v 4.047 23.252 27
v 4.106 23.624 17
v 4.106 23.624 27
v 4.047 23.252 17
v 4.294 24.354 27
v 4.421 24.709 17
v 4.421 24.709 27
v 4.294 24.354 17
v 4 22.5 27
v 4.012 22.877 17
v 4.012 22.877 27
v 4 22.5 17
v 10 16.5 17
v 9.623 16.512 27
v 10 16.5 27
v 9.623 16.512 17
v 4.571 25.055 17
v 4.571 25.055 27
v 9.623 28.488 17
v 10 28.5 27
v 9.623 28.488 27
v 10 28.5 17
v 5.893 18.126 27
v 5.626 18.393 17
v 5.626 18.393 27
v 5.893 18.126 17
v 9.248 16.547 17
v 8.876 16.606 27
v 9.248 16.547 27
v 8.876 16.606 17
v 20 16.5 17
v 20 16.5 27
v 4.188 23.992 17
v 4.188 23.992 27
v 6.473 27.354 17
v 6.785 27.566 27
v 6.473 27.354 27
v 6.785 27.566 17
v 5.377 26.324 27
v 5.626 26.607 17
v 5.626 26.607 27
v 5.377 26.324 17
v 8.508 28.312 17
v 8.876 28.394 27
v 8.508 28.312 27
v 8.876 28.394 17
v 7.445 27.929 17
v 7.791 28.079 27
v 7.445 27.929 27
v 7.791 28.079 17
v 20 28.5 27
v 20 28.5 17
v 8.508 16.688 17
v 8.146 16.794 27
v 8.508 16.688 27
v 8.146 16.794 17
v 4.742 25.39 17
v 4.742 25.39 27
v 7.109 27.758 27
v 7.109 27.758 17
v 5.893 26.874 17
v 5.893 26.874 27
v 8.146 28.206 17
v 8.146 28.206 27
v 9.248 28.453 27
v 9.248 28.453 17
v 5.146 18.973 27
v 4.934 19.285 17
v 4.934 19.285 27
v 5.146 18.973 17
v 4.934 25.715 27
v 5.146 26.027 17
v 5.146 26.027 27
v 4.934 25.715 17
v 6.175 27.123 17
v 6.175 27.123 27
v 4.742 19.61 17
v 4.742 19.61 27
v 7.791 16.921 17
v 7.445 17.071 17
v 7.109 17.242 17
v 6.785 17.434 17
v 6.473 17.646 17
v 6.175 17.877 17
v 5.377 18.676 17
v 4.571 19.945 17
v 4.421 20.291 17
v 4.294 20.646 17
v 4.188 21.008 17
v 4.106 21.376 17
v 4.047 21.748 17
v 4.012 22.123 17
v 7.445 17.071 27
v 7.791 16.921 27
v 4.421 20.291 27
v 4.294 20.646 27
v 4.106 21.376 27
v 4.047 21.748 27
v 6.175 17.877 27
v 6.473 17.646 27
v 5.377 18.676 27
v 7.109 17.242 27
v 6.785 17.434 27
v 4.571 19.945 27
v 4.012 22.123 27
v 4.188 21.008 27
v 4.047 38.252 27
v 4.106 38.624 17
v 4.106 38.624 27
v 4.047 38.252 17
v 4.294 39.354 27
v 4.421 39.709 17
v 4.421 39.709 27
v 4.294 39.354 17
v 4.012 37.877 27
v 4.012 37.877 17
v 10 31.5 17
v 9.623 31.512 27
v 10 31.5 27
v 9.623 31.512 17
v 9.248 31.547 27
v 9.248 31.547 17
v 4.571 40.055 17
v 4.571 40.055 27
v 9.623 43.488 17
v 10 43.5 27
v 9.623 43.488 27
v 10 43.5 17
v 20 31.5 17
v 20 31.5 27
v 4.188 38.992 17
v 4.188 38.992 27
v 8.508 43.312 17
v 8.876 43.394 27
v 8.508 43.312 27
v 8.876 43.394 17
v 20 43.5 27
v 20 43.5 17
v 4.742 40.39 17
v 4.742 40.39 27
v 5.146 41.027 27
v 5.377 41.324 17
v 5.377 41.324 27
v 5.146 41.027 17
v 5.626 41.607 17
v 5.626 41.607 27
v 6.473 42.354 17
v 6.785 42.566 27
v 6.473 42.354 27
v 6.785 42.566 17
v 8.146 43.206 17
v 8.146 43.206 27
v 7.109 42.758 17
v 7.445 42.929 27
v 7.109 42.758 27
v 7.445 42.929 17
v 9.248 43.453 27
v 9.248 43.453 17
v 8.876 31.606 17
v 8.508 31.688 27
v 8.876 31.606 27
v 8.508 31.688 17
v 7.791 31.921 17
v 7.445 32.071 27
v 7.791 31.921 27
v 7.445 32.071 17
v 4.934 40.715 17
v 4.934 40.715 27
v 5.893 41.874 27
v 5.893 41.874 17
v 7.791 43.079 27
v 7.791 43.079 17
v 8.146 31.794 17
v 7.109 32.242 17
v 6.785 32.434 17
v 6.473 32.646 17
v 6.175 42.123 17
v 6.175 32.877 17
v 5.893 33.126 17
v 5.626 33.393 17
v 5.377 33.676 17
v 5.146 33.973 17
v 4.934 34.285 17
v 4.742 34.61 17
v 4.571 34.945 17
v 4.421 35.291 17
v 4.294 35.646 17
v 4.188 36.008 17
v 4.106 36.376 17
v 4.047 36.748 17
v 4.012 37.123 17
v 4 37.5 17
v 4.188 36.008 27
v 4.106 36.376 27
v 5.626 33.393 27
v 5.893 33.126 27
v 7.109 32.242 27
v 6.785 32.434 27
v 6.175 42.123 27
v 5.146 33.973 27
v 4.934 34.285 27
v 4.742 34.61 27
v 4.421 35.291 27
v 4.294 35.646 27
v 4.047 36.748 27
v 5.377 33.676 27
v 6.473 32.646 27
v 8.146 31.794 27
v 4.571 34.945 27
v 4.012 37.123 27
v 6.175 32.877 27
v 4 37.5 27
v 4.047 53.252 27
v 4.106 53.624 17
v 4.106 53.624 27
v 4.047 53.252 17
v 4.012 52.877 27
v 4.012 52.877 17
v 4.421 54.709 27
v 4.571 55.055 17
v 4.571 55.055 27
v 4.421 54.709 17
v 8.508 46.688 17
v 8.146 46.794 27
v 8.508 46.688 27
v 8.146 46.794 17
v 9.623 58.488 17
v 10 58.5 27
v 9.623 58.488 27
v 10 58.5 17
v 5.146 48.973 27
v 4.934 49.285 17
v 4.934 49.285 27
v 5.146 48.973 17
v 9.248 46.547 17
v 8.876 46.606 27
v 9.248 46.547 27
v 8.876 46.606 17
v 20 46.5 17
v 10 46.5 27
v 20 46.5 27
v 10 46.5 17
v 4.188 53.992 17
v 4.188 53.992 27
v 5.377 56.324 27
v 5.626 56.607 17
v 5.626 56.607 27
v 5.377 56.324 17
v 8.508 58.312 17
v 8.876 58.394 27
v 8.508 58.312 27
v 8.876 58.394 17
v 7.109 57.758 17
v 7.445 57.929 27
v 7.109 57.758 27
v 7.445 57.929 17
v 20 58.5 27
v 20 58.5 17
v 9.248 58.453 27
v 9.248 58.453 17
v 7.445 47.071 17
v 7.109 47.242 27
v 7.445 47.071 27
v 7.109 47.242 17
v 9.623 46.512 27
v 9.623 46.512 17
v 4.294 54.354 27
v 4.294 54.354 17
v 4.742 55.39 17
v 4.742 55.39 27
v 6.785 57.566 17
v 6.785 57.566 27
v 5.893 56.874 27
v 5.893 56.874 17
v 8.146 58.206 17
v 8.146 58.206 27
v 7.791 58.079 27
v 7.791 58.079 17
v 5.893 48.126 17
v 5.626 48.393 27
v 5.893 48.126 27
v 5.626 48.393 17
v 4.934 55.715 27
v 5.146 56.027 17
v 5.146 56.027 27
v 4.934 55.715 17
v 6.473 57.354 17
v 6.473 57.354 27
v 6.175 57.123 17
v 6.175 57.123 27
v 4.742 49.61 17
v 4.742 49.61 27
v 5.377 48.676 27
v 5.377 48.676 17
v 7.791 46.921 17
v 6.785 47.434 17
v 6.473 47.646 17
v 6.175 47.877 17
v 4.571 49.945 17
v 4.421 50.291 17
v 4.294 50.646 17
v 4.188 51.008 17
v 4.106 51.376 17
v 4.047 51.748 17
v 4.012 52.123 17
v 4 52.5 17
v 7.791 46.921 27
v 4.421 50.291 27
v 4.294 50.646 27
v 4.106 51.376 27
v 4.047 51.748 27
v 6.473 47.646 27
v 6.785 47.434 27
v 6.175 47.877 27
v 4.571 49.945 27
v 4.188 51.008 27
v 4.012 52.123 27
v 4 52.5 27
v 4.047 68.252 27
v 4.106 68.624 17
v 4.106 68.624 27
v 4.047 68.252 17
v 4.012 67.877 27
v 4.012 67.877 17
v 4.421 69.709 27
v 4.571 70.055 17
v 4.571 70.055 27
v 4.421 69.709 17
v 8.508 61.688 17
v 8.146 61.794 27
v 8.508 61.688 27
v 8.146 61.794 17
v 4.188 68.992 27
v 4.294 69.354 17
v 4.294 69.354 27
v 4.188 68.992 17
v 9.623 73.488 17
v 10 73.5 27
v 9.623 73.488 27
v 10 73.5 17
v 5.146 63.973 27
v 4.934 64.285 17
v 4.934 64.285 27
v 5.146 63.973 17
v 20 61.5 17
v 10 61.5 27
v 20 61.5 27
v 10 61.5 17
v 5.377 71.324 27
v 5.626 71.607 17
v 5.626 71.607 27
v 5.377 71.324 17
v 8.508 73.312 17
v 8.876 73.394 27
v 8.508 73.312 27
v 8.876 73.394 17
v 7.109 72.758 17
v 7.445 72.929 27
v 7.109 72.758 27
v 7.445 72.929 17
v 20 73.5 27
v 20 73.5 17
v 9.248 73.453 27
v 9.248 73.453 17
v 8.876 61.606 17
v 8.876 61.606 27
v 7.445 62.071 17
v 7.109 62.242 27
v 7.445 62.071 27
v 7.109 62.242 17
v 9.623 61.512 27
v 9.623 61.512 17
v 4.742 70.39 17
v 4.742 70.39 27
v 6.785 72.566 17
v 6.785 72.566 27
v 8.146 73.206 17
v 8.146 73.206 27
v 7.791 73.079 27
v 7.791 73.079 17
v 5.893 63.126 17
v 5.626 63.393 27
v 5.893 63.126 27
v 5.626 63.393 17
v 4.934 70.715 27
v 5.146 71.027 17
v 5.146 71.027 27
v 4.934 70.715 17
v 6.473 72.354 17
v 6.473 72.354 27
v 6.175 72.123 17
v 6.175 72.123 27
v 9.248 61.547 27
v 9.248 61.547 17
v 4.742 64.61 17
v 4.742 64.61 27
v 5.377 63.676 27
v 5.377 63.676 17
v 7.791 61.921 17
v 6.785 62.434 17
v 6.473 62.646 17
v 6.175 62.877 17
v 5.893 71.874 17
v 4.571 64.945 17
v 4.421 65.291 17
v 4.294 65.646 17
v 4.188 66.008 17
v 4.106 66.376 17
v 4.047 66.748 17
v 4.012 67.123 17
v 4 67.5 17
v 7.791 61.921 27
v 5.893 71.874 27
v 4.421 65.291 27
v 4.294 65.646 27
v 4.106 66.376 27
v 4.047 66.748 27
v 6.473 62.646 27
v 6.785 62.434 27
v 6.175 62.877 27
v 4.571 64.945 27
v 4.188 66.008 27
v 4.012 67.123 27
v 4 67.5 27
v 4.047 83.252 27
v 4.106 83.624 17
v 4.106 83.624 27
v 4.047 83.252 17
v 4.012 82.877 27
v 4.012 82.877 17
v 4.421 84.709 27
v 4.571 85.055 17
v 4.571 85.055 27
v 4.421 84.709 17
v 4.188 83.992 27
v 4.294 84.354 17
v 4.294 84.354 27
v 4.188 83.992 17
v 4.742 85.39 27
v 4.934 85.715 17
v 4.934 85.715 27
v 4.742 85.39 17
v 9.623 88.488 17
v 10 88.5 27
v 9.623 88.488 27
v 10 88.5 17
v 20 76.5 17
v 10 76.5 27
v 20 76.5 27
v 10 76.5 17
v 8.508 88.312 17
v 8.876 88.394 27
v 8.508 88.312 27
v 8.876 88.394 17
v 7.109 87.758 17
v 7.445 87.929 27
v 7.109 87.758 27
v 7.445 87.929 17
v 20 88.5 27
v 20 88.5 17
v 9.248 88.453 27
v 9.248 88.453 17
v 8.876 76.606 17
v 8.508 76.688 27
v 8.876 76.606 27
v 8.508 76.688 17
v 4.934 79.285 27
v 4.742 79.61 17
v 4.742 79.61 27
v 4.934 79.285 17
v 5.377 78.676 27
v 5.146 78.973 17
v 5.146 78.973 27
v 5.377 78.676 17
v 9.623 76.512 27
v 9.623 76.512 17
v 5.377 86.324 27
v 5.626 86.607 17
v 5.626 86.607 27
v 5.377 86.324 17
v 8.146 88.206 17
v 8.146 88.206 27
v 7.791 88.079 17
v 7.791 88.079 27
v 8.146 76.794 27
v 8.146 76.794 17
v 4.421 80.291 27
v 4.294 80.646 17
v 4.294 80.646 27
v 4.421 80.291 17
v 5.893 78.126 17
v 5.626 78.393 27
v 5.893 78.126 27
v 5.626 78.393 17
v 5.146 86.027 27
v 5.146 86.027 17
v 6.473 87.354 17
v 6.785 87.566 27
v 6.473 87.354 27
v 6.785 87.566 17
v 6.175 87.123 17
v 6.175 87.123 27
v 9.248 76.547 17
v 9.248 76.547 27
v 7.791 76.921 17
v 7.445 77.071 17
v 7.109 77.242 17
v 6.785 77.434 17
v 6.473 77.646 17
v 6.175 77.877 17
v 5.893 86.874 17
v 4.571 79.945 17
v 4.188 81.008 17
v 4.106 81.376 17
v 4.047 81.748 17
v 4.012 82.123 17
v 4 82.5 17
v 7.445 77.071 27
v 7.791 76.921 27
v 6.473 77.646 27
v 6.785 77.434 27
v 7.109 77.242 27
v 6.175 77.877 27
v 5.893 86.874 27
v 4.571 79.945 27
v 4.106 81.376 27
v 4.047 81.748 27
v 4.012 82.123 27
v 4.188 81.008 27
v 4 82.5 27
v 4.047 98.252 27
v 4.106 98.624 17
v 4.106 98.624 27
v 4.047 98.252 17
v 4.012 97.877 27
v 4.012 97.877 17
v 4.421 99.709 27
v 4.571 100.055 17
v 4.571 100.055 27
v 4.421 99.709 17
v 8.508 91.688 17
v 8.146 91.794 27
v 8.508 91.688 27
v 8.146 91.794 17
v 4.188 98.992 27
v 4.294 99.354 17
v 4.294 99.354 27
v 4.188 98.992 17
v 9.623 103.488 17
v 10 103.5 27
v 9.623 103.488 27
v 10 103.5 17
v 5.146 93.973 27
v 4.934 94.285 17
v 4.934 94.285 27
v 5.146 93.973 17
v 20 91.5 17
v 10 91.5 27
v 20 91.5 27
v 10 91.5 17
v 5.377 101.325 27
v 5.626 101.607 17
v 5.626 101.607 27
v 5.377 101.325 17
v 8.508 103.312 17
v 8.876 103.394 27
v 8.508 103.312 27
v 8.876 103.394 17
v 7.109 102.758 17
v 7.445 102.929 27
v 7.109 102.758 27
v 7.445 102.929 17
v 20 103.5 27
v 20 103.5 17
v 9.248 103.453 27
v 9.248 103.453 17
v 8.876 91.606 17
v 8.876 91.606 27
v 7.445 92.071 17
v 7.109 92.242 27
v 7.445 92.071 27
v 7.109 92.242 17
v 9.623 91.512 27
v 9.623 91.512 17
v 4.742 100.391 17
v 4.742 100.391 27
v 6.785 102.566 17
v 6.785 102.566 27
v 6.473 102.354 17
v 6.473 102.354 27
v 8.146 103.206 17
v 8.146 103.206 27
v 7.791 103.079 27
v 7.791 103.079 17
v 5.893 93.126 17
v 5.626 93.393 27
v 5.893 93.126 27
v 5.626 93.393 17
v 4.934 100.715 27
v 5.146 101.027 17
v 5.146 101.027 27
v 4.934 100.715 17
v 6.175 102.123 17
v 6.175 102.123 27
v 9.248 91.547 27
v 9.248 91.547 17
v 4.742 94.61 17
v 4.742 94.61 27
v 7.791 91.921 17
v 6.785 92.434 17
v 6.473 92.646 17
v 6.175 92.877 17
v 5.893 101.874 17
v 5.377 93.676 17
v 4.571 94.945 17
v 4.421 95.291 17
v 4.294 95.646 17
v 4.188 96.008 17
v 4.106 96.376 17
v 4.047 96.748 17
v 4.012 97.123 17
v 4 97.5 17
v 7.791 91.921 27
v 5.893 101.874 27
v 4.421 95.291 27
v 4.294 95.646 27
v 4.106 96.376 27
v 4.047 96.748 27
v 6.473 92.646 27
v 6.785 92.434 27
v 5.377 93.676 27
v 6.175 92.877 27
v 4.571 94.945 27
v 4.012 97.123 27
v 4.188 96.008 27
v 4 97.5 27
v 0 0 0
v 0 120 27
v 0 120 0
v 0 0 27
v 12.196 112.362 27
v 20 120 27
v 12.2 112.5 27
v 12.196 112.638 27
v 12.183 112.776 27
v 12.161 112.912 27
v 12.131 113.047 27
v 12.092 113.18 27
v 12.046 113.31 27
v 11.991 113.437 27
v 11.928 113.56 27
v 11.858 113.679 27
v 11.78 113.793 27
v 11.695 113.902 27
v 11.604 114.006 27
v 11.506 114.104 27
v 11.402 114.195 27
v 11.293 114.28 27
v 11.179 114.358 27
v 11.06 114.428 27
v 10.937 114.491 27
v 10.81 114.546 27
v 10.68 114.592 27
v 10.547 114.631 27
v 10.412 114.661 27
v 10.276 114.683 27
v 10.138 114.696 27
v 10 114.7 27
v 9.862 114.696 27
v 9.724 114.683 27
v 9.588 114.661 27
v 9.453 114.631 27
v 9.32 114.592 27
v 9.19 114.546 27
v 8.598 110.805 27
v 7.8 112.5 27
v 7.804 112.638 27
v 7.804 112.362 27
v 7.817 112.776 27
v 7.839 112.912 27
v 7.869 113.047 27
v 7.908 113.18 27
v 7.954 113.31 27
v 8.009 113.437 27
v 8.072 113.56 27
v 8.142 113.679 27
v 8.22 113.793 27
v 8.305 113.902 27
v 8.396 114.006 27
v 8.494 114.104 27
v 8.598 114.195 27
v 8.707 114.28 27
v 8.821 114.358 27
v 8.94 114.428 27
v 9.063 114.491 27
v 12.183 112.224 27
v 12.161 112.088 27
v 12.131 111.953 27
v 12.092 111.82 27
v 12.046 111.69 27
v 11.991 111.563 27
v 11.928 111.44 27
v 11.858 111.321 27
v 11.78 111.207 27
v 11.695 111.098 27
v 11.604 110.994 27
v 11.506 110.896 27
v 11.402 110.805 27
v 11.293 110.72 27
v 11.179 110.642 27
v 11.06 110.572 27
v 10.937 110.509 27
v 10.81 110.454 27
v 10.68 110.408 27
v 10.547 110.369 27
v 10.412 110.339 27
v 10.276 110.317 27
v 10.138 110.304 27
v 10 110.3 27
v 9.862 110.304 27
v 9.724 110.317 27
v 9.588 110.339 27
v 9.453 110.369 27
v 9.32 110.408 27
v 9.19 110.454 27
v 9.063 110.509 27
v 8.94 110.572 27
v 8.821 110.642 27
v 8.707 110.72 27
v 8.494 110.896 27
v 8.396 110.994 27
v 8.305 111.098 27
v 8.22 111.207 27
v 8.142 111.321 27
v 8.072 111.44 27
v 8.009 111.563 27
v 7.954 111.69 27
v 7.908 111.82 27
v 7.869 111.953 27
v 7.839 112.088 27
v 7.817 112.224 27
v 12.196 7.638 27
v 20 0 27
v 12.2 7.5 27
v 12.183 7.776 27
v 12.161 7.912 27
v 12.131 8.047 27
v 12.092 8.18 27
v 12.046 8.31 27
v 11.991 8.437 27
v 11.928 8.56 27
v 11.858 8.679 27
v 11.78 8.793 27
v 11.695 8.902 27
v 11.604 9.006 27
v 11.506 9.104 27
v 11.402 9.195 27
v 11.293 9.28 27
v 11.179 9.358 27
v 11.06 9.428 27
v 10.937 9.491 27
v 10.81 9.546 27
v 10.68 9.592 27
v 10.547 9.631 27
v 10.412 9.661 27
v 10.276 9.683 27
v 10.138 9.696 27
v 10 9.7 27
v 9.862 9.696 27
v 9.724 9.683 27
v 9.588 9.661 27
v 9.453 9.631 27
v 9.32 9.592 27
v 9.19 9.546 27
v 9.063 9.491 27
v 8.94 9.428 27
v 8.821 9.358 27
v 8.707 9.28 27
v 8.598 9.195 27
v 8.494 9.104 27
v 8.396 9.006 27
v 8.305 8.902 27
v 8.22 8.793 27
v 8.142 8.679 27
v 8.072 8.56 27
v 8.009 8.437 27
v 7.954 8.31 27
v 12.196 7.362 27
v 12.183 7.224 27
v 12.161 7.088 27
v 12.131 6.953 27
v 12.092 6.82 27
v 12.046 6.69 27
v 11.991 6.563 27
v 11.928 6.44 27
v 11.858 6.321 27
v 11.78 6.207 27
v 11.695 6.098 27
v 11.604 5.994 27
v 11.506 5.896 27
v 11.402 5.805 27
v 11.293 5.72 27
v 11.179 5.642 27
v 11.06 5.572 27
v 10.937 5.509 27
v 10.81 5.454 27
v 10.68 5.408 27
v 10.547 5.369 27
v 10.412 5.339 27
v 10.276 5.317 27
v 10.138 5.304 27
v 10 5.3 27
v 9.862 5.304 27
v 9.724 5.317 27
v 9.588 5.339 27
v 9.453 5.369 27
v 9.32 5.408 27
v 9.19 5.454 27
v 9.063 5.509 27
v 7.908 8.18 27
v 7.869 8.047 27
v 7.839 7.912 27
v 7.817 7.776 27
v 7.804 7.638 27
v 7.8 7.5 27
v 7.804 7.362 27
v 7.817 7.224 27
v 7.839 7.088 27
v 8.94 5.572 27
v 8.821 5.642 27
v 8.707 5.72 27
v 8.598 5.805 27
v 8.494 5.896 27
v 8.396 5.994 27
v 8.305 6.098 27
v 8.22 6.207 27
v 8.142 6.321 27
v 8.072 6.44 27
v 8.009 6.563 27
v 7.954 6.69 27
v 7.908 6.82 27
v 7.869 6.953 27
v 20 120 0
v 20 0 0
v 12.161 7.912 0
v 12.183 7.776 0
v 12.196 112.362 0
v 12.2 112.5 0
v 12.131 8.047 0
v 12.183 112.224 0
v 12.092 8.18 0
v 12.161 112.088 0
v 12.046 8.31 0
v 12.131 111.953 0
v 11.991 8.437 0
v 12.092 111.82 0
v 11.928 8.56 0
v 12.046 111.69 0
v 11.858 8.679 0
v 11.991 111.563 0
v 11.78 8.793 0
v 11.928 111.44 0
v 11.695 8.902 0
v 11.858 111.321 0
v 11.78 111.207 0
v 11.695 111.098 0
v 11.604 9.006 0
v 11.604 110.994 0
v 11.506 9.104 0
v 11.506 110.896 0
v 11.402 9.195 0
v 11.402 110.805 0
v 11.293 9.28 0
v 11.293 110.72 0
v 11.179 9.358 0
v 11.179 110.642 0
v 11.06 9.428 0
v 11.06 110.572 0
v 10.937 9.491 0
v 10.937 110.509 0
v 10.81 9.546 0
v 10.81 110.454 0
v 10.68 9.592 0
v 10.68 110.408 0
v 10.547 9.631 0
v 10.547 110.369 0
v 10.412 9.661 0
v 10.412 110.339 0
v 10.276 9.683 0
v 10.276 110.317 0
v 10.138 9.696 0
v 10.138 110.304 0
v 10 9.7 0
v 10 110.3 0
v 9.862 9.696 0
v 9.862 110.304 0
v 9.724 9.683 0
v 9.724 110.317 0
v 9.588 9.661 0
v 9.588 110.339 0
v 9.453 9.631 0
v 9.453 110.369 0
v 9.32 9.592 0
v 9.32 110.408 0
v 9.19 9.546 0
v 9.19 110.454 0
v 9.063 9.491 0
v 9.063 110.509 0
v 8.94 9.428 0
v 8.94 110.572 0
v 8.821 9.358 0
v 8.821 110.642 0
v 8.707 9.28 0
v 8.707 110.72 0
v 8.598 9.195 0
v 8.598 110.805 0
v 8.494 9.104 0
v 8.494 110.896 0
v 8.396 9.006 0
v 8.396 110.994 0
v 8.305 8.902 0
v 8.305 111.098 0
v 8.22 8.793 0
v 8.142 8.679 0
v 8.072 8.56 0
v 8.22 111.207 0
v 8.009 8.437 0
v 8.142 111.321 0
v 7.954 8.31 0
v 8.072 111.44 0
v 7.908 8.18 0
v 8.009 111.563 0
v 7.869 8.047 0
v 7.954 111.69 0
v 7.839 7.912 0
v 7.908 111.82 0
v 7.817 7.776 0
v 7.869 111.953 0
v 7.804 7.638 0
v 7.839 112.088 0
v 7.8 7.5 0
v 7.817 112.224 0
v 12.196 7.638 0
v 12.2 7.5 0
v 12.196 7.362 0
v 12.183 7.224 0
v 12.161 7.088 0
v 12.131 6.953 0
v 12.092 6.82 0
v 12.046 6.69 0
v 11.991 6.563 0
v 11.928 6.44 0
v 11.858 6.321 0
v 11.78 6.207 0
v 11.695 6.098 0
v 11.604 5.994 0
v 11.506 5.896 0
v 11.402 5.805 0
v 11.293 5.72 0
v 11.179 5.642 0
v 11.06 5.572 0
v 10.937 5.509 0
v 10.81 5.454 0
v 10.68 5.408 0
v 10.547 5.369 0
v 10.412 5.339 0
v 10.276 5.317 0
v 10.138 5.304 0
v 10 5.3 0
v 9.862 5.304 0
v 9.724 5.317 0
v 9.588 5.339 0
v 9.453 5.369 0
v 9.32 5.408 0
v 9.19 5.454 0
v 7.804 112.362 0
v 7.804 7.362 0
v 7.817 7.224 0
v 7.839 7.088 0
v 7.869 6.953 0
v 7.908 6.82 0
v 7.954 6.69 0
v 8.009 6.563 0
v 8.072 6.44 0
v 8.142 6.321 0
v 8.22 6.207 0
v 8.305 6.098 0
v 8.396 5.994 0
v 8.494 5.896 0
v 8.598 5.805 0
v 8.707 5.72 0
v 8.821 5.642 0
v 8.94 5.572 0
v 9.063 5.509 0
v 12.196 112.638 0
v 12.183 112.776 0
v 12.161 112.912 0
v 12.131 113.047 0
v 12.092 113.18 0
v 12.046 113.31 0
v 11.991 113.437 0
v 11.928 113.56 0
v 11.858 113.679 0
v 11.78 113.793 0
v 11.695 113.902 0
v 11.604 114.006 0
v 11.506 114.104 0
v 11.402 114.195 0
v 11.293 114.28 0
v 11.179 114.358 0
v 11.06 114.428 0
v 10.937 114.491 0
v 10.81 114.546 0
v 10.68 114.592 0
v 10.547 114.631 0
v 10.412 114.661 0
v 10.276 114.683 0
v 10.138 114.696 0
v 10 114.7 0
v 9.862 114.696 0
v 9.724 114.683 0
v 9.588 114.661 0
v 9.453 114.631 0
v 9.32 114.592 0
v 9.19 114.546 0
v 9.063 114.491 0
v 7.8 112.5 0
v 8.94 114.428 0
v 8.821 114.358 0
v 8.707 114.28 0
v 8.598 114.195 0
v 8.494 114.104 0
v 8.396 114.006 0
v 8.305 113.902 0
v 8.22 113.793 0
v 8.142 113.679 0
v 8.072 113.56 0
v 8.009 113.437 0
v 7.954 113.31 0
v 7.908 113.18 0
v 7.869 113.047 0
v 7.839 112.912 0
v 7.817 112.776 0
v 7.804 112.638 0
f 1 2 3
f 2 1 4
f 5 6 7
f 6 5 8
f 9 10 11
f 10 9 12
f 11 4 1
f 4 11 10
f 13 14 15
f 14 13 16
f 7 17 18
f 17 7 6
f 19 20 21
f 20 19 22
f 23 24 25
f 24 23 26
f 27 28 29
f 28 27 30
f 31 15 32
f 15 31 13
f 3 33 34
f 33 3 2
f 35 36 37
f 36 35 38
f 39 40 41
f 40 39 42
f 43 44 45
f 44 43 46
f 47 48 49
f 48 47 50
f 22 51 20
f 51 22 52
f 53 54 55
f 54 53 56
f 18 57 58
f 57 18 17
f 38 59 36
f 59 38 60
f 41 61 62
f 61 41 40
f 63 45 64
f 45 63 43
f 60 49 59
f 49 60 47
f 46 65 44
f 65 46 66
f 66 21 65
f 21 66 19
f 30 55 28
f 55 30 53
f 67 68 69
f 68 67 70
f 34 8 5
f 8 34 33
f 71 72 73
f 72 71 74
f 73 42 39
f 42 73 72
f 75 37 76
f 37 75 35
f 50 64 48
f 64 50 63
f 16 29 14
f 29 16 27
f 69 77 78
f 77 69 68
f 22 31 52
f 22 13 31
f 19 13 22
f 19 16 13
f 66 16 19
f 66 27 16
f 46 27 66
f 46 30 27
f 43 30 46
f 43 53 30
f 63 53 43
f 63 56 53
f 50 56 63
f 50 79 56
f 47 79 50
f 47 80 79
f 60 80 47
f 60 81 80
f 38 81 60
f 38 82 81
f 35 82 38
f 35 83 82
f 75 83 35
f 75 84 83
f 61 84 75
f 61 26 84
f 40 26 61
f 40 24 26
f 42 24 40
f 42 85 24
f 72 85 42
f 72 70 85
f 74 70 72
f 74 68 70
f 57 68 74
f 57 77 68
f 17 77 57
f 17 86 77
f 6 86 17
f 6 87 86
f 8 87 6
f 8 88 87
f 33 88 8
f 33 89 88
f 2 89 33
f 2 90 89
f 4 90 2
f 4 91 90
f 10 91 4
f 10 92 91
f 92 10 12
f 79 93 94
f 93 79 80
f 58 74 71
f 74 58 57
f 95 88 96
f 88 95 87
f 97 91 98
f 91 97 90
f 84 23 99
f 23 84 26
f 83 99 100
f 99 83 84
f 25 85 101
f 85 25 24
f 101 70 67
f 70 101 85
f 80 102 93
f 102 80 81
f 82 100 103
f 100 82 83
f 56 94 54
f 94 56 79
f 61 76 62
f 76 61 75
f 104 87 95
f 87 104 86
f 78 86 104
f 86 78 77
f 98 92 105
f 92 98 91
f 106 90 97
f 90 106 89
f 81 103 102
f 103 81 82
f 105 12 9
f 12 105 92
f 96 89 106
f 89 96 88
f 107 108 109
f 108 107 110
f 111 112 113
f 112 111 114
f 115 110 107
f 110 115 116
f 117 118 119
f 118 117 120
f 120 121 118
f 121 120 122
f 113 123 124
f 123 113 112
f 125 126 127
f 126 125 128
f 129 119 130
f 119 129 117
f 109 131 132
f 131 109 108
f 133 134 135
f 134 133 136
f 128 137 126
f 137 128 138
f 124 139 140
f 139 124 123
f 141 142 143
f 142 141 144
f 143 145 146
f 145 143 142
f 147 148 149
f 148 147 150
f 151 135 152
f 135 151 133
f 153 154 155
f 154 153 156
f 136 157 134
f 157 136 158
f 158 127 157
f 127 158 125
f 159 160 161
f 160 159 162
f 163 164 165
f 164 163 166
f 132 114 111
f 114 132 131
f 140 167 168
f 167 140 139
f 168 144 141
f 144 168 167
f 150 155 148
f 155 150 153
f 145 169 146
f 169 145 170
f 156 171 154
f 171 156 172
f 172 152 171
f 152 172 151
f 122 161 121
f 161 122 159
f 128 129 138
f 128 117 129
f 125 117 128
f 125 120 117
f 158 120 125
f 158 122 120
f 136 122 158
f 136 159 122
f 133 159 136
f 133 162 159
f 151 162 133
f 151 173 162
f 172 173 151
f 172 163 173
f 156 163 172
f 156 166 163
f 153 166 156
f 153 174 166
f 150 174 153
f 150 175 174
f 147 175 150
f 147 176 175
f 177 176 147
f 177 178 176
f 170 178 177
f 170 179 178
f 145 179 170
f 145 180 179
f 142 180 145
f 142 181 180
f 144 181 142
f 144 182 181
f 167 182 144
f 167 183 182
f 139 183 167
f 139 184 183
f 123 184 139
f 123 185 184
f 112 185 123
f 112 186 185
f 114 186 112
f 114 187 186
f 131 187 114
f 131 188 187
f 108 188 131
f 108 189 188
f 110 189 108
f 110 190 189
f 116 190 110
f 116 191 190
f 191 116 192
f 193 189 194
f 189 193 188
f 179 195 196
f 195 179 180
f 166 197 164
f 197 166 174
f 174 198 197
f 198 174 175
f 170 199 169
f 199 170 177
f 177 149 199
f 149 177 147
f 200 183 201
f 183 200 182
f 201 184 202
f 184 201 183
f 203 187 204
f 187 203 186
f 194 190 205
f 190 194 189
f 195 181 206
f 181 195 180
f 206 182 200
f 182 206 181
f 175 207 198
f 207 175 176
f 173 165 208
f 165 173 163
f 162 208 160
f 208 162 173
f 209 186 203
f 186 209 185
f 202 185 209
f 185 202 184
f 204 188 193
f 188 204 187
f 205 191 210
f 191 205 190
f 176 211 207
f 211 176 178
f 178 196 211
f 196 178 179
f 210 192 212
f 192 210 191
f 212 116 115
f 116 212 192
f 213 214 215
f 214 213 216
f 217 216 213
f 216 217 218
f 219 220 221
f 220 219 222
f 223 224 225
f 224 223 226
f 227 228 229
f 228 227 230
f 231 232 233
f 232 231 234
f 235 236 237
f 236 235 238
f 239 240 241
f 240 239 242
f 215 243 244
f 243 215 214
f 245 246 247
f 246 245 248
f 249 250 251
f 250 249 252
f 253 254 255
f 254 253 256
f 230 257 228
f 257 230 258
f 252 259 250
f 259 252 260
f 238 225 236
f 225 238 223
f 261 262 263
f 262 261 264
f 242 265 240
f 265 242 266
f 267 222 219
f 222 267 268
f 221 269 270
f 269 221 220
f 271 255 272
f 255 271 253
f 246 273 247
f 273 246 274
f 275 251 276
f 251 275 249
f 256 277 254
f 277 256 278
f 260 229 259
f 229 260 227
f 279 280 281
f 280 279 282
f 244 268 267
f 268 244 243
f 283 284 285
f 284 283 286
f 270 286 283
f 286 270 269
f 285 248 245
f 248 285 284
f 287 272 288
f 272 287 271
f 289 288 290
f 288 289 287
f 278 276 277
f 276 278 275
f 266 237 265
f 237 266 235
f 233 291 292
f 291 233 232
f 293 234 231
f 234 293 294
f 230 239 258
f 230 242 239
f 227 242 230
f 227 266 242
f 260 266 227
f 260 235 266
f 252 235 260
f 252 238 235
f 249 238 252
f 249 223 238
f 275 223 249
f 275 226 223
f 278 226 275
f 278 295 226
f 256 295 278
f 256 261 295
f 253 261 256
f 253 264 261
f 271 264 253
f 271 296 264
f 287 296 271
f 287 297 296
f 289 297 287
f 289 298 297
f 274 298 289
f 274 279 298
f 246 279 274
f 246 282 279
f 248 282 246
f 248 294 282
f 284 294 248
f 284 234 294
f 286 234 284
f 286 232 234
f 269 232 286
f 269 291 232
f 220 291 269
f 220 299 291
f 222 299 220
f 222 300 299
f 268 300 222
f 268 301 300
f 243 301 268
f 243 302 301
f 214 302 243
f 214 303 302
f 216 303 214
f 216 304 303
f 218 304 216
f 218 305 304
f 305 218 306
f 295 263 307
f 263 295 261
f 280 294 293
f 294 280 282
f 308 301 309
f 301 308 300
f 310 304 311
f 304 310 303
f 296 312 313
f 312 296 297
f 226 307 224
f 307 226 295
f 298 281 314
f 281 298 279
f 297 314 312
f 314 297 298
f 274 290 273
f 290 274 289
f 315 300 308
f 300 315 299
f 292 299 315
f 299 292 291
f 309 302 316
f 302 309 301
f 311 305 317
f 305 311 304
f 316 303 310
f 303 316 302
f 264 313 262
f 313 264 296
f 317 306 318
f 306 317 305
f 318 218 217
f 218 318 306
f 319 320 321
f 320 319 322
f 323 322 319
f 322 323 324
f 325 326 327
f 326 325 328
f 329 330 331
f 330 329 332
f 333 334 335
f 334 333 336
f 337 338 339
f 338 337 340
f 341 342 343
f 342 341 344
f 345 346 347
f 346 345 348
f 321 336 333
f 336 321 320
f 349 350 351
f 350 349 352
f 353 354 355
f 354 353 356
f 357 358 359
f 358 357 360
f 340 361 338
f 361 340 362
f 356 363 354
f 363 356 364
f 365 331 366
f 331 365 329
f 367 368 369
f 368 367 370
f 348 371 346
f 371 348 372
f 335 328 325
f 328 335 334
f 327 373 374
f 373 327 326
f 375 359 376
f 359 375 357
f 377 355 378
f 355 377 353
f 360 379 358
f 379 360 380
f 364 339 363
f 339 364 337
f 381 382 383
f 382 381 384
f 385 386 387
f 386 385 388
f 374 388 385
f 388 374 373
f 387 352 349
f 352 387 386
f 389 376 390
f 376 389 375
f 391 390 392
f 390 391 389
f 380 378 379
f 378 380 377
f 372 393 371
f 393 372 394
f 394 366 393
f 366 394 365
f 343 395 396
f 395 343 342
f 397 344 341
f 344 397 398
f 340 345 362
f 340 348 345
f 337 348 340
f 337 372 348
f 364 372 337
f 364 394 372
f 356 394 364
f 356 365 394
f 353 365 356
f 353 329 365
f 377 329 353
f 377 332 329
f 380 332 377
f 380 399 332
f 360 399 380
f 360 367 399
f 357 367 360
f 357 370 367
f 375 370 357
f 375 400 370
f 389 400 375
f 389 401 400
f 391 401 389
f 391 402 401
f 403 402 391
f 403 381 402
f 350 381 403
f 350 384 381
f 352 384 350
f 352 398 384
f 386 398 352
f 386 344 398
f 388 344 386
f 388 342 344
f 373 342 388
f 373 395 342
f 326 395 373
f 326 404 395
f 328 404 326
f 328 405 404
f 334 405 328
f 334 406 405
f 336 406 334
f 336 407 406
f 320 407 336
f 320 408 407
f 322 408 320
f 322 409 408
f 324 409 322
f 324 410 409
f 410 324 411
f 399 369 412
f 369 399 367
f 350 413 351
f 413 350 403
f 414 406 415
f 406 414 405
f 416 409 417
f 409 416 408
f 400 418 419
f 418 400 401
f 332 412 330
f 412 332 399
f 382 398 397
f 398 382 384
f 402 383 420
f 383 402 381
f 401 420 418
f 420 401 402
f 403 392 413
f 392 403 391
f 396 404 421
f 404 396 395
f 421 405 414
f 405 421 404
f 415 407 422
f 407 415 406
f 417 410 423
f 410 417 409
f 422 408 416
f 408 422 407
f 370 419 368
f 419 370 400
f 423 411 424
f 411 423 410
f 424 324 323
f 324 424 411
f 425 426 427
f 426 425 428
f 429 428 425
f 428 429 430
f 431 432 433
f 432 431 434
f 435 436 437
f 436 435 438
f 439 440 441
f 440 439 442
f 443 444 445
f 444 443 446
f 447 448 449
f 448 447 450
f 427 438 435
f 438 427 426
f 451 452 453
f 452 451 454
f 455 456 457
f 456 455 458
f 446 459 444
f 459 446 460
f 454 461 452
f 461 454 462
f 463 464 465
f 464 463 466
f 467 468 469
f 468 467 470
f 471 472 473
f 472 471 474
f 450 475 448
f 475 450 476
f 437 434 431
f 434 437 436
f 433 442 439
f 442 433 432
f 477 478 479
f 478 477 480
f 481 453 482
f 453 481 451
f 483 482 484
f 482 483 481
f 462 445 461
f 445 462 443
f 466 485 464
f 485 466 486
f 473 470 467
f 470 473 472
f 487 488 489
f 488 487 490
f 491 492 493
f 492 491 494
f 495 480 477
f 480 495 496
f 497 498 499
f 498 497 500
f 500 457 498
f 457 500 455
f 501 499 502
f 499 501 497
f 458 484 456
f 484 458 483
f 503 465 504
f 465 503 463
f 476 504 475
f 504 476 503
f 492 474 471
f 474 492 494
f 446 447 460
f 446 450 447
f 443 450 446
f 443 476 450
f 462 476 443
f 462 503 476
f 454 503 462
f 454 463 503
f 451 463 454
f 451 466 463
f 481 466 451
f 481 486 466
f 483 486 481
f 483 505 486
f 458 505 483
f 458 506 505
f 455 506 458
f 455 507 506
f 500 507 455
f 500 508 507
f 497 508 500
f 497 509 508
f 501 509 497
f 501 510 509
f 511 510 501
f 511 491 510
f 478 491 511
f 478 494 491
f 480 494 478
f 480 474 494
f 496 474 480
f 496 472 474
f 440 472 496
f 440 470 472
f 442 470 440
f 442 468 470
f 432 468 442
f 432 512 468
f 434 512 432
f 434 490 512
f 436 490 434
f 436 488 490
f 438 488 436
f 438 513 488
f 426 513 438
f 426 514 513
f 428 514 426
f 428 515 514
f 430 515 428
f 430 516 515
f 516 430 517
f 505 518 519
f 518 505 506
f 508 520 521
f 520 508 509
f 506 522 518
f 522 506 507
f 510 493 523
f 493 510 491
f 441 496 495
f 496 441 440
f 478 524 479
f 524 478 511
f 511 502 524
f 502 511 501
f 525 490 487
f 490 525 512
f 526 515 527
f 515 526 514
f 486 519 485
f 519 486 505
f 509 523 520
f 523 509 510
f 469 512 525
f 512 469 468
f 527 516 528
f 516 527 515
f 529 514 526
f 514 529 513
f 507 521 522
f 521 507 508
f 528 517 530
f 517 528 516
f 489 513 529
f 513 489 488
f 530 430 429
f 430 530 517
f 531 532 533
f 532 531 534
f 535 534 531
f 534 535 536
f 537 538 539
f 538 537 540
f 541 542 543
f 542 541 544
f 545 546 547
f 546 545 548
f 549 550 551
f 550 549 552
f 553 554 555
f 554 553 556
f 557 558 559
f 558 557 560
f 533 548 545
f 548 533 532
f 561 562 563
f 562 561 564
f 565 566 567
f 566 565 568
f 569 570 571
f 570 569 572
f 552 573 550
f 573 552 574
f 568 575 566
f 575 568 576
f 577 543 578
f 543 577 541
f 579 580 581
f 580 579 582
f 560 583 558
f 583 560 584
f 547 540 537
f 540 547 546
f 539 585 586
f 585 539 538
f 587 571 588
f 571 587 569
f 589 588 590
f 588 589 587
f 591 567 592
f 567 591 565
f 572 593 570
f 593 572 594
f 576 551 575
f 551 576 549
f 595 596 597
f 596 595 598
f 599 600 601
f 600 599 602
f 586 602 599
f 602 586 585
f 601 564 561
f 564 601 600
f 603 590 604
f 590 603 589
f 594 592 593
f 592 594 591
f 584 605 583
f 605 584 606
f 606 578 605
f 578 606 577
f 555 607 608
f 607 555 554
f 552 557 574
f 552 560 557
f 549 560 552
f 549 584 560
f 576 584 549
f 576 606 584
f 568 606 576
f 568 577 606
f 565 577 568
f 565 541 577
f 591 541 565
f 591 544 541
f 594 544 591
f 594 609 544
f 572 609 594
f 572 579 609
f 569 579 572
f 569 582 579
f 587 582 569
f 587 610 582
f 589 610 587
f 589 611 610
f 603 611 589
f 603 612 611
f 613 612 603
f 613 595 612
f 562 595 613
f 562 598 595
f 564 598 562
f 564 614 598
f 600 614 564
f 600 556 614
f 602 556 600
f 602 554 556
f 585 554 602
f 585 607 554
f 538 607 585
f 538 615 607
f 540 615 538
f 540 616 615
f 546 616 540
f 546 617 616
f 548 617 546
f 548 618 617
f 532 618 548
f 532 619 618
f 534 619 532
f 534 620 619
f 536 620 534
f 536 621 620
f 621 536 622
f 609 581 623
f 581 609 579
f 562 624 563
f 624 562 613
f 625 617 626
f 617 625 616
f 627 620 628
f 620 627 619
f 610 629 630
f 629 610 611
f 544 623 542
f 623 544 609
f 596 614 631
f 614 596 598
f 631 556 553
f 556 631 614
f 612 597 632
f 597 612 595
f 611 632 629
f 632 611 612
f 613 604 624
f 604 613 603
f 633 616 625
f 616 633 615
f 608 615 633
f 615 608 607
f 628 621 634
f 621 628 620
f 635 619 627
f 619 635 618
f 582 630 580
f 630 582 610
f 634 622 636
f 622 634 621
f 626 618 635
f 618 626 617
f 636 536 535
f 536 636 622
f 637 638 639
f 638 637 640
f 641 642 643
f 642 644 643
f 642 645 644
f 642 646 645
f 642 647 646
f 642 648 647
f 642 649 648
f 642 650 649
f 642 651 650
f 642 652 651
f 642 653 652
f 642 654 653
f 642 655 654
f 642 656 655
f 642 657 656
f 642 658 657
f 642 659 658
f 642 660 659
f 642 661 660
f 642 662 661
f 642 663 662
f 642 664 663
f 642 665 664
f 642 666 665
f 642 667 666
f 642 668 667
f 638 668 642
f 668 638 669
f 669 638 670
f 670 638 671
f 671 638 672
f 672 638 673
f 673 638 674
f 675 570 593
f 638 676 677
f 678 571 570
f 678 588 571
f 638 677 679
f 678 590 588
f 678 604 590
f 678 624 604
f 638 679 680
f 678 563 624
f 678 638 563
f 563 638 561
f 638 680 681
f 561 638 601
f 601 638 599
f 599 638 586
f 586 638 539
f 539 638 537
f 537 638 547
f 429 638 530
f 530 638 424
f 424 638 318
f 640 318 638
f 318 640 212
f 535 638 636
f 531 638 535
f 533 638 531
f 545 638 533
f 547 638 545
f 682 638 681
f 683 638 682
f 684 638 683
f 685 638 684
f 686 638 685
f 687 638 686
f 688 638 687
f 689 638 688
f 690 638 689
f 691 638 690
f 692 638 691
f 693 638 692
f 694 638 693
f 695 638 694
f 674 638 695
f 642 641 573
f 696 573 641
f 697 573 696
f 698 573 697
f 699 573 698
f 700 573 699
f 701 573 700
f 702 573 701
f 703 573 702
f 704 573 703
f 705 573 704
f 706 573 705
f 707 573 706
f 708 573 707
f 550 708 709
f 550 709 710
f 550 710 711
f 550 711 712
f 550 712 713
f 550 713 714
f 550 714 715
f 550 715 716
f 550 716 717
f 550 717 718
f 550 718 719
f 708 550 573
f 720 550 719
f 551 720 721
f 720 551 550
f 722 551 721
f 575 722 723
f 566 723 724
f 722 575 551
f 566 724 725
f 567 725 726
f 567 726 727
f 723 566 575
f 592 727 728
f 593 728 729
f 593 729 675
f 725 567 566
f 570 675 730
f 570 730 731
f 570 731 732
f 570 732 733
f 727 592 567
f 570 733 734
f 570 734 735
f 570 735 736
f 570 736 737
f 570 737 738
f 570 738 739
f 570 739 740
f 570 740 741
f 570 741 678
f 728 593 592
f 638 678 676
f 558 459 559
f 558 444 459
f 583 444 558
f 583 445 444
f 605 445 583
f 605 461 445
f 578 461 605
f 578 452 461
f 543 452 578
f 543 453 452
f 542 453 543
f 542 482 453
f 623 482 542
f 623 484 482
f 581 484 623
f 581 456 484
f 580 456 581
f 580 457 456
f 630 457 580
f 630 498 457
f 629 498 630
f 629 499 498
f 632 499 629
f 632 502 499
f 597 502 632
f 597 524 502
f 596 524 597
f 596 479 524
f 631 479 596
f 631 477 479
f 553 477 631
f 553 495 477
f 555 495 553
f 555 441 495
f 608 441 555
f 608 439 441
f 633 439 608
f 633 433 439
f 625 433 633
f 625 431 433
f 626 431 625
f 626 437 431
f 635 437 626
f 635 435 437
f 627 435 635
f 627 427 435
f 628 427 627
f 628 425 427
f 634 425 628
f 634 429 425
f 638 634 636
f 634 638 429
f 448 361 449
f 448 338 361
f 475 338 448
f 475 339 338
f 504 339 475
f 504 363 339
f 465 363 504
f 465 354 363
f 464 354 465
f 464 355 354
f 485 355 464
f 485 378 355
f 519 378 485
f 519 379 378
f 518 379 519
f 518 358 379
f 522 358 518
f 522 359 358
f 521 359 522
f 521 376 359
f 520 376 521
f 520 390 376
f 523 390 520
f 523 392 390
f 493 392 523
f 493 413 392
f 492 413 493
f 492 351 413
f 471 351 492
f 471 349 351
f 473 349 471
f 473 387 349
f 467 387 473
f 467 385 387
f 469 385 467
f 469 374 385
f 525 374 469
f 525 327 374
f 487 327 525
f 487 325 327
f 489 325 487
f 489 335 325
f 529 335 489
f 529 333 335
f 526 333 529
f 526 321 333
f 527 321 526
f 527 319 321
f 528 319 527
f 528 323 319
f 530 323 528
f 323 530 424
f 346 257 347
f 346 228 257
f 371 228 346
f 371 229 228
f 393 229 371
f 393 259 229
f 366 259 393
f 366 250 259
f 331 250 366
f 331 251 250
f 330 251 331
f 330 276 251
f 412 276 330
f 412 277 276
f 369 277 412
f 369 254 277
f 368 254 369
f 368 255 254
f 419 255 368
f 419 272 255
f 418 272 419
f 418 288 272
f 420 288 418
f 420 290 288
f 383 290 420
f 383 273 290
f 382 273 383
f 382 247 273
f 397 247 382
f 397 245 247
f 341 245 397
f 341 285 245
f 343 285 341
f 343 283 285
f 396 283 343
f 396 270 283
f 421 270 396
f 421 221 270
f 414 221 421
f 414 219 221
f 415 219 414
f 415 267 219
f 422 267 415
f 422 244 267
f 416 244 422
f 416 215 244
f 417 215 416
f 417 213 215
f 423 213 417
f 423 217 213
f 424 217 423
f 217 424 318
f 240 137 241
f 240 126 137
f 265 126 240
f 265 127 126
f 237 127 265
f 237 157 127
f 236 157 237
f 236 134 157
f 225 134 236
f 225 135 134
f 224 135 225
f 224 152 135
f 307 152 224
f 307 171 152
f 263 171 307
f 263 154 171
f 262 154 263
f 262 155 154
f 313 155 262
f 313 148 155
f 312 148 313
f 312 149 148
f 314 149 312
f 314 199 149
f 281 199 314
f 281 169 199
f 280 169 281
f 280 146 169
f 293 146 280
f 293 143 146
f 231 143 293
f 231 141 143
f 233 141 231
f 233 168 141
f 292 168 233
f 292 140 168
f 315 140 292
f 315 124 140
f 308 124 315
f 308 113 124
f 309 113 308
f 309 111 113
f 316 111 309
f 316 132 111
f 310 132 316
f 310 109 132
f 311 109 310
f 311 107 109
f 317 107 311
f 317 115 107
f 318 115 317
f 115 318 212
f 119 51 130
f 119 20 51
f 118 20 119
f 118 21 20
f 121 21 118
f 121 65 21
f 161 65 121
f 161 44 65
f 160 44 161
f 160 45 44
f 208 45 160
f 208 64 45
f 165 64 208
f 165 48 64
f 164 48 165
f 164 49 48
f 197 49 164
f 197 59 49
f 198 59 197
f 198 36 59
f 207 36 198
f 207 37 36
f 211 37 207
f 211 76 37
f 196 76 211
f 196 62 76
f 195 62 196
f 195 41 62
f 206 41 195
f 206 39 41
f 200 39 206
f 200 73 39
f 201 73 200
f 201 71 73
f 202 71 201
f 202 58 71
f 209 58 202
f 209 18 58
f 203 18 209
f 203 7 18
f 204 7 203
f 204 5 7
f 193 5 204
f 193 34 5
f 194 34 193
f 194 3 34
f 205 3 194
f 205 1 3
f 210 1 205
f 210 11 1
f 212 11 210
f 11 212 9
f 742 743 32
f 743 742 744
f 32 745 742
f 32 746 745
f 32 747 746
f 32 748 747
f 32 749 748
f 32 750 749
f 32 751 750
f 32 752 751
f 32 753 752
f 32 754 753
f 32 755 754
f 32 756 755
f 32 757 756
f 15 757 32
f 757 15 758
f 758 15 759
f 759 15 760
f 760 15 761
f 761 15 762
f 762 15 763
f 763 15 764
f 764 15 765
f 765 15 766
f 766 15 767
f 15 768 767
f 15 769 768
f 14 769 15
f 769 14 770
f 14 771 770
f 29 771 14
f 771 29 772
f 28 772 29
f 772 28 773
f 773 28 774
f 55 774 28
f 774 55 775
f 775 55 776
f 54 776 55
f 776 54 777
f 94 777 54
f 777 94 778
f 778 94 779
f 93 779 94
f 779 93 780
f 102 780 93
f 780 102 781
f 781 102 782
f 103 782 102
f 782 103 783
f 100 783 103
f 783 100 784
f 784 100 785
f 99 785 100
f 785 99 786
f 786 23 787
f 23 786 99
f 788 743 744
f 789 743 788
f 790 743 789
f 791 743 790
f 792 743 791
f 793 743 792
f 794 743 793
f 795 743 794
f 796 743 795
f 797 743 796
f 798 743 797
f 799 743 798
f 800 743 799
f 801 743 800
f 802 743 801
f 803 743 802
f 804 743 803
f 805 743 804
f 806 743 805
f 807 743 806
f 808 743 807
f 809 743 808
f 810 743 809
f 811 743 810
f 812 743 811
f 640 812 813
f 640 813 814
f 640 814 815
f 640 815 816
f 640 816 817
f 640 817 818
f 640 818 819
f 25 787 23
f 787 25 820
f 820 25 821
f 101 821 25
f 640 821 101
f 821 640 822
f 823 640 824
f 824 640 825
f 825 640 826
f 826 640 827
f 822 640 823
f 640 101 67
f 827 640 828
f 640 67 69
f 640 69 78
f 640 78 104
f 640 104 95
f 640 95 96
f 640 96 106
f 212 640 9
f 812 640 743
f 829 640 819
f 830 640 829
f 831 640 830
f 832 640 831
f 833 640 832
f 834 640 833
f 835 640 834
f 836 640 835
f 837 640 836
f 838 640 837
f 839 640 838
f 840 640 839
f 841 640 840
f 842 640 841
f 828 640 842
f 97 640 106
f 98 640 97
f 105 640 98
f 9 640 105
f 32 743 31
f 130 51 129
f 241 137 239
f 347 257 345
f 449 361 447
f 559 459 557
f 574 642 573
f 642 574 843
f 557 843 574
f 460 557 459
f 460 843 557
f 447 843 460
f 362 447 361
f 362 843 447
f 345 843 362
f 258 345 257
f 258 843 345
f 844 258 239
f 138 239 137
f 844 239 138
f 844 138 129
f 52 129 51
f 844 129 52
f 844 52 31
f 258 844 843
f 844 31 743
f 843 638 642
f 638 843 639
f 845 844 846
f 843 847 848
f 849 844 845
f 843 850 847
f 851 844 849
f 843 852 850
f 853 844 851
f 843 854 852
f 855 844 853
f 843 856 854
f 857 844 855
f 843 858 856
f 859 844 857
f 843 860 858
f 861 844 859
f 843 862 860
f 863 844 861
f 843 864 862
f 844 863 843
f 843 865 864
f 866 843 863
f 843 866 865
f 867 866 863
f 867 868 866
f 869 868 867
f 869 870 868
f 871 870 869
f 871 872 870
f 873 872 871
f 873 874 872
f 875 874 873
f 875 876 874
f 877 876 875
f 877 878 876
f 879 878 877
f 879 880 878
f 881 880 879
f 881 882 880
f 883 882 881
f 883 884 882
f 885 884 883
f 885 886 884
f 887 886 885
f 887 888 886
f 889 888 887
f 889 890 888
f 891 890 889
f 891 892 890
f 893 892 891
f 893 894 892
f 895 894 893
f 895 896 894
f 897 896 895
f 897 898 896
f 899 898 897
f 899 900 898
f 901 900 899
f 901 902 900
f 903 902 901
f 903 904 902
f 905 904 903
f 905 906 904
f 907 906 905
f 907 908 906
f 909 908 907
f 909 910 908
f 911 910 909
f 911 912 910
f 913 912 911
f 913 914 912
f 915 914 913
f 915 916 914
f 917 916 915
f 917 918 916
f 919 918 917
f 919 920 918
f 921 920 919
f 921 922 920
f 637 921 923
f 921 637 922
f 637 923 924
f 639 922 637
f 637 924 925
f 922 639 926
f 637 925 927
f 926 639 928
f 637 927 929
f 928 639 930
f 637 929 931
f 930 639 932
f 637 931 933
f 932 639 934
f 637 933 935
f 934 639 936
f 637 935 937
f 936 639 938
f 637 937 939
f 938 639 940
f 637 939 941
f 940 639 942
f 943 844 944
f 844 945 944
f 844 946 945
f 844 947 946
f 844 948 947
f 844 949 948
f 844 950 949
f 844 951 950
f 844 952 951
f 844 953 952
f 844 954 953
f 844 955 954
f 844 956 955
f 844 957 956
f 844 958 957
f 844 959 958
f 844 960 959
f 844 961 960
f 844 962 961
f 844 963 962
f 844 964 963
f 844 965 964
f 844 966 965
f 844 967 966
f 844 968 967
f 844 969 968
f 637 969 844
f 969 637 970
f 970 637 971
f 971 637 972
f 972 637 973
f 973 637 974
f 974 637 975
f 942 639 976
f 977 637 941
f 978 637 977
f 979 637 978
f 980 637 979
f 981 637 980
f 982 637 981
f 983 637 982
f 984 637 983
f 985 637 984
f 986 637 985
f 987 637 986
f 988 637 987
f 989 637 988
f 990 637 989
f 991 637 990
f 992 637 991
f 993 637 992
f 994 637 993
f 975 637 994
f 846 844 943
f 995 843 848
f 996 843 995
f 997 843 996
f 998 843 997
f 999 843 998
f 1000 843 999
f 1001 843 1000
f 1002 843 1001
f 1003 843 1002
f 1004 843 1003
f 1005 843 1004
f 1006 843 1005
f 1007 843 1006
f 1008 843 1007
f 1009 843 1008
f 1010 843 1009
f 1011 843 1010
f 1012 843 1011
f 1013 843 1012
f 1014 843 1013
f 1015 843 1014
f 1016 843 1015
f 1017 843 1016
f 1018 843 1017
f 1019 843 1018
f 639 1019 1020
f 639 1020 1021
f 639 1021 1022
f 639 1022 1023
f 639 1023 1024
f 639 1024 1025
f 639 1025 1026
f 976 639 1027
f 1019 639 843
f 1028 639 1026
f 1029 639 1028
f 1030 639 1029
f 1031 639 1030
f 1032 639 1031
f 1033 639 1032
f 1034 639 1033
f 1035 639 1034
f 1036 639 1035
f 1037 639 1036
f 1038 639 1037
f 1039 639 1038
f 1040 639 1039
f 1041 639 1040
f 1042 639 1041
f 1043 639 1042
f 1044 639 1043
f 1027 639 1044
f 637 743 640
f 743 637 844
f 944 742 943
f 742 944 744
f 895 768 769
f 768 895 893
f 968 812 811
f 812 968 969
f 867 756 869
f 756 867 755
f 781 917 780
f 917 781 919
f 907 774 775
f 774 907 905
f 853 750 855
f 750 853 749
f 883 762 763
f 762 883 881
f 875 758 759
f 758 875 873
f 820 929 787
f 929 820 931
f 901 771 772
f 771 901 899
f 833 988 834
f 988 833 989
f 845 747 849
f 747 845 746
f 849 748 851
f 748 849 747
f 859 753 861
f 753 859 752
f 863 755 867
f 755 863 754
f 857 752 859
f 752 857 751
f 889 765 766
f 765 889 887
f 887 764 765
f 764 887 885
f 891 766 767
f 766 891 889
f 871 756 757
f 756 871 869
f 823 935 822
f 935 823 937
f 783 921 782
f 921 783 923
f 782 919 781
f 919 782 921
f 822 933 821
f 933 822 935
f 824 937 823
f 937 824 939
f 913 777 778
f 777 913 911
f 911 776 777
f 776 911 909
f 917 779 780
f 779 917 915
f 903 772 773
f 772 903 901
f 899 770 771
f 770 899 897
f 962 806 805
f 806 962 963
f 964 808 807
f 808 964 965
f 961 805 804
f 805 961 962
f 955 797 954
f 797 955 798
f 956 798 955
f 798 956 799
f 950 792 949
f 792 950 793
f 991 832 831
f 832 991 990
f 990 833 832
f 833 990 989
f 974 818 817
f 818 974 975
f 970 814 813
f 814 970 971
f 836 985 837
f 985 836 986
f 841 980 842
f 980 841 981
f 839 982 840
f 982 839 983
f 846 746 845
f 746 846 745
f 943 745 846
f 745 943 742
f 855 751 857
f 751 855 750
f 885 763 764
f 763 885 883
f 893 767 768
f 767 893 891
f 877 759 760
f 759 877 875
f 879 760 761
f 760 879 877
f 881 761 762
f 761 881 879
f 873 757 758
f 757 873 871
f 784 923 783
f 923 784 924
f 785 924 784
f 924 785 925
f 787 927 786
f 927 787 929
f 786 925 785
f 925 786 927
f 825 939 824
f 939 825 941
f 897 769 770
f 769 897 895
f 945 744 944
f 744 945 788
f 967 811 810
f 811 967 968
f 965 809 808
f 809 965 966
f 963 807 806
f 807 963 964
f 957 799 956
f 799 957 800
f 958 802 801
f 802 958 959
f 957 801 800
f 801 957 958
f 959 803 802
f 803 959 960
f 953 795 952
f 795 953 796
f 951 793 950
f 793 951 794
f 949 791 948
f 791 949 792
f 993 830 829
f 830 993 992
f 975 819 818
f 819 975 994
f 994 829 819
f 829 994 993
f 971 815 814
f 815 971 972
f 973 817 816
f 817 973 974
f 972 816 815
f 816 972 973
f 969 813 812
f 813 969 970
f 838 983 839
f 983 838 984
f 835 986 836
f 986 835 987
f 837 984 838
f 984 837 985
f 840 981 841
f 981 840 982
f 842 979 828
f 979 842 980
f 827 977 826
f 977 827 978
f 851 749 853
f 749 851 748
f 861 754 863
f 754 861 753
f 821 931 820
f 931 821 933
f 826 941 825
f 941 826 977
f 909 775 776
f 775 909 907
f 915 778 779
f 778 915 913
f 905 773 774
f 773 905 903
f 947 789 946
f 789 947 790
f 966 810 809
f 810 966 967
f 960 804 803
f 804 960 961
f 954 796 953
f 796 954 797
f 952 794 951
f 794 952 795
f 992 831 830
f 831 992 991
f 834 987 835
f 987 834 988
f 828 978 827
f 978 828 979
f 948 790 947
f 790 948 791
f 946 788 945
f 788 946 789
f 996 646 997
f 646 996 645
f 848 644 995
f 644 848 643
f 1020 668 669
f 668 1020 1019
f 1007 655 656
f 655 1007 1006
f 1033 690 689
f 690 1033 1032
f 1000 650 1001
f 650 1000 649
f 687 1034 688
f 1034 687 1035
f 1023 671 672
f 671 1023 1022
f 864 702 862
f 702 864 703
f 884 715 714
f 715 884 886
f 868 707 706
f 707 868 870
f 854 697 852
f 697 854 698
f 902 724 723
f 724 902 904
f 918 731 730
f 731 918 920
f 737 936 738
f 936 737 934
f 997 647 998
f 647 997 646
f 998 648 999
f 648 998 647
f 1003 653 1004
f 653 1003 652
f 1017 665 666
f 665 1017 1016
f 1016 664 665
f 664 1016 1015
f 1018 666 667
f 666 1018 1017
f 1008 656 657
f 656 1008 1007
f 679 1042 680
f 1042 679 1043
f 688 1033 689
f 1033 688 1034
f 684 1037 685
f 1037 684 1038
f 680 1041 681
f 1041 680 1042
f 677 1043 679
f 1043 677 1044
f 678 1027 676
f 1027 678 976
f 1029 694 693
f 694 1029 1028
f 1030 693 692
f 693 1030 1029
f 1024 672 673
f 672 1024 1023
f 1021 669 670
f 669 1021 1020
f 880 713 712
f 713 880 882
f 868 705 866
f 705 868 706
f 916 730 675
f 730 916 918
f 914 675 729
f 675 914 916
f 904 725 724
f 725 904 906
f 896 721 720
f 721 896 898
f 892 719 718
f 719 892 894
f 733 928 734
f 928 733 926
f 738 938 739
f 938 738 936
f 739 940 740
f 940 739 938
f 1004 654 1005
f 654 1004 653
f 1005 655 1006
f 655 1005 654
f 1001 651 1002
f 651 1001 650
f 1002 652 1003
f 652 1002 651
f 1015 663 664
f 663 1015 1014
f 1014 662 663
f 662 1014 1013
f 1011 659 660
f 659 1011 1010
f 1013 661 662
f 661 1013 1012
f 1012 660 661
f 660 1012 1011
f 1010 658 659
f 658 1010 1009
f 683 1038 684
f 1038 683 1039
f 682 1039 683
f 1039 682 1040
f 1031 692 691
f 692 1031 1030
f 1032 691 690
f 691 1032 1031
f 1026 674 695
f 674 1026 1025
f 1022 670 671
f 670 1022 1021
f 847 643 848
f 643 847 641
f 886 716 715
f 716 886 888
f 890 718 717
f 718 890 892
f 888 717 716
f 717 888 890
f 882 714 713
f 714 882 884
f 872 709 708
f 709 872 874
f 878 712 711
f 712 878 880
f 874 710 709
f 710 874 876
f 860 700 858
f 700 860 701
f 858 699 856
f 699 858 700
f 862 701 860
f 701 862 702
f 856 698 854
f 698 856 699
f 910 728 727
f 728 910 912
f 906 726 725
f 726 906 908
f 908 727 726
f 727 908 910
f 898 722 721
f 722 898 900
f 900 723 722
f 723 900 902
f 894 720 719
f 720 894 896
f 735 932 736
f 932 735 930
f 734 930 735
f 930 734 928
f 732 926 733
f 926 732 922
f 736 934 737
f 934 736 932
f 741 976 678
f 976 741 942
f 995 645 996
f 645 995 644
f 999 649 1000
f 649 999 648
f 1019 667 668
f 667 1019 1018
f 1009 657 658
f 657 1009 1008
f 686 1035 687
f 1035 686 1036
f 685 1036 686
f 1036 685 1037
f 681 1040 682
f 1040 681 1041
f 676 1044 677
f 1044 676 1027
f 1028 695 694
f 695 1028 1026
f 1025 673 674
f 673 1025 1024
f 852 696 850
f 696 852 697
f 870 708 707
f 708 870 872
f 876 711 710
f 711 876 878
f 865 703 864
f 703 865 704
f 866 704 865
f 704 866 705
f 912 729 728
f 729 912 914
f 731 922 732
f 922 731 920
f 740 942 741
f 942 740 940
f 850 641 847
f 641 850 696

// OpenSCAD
difference()
{
    $fn = 100;

    // Radius of nozzle tip where to hold
    r = 12 / 2;

    // Width of nozzle holder
    w = 20;
    // Border
    b = 15;
    // Distance between nozzles
    d = 15;
    h = 27;

    nozzles = 6;

    union()
    {
        cube([w, nozzles * d + 2 * b, h], false);
    }
    // Slot for nozzle slit
    for(i = [1:nozzles])
    {
        hull()
        {
            translate([10, b + d/2 + (i - 1) * d, h - 10]) cylinder(h + 2, r, r);
            translate([w + 10, b + d/2 + (i - 1) * d, h - 10]) cylinder(h + 2, r, r);
        }
    }
    translate([w / 2, b / 2, -1]) cylinder(h + 2, 2.2, 2.2);
    translate([w / 2, nozzles * d + 2 * b - b / 2, -1]) cylinder(h + 2, 2.2, 2.2);
}
